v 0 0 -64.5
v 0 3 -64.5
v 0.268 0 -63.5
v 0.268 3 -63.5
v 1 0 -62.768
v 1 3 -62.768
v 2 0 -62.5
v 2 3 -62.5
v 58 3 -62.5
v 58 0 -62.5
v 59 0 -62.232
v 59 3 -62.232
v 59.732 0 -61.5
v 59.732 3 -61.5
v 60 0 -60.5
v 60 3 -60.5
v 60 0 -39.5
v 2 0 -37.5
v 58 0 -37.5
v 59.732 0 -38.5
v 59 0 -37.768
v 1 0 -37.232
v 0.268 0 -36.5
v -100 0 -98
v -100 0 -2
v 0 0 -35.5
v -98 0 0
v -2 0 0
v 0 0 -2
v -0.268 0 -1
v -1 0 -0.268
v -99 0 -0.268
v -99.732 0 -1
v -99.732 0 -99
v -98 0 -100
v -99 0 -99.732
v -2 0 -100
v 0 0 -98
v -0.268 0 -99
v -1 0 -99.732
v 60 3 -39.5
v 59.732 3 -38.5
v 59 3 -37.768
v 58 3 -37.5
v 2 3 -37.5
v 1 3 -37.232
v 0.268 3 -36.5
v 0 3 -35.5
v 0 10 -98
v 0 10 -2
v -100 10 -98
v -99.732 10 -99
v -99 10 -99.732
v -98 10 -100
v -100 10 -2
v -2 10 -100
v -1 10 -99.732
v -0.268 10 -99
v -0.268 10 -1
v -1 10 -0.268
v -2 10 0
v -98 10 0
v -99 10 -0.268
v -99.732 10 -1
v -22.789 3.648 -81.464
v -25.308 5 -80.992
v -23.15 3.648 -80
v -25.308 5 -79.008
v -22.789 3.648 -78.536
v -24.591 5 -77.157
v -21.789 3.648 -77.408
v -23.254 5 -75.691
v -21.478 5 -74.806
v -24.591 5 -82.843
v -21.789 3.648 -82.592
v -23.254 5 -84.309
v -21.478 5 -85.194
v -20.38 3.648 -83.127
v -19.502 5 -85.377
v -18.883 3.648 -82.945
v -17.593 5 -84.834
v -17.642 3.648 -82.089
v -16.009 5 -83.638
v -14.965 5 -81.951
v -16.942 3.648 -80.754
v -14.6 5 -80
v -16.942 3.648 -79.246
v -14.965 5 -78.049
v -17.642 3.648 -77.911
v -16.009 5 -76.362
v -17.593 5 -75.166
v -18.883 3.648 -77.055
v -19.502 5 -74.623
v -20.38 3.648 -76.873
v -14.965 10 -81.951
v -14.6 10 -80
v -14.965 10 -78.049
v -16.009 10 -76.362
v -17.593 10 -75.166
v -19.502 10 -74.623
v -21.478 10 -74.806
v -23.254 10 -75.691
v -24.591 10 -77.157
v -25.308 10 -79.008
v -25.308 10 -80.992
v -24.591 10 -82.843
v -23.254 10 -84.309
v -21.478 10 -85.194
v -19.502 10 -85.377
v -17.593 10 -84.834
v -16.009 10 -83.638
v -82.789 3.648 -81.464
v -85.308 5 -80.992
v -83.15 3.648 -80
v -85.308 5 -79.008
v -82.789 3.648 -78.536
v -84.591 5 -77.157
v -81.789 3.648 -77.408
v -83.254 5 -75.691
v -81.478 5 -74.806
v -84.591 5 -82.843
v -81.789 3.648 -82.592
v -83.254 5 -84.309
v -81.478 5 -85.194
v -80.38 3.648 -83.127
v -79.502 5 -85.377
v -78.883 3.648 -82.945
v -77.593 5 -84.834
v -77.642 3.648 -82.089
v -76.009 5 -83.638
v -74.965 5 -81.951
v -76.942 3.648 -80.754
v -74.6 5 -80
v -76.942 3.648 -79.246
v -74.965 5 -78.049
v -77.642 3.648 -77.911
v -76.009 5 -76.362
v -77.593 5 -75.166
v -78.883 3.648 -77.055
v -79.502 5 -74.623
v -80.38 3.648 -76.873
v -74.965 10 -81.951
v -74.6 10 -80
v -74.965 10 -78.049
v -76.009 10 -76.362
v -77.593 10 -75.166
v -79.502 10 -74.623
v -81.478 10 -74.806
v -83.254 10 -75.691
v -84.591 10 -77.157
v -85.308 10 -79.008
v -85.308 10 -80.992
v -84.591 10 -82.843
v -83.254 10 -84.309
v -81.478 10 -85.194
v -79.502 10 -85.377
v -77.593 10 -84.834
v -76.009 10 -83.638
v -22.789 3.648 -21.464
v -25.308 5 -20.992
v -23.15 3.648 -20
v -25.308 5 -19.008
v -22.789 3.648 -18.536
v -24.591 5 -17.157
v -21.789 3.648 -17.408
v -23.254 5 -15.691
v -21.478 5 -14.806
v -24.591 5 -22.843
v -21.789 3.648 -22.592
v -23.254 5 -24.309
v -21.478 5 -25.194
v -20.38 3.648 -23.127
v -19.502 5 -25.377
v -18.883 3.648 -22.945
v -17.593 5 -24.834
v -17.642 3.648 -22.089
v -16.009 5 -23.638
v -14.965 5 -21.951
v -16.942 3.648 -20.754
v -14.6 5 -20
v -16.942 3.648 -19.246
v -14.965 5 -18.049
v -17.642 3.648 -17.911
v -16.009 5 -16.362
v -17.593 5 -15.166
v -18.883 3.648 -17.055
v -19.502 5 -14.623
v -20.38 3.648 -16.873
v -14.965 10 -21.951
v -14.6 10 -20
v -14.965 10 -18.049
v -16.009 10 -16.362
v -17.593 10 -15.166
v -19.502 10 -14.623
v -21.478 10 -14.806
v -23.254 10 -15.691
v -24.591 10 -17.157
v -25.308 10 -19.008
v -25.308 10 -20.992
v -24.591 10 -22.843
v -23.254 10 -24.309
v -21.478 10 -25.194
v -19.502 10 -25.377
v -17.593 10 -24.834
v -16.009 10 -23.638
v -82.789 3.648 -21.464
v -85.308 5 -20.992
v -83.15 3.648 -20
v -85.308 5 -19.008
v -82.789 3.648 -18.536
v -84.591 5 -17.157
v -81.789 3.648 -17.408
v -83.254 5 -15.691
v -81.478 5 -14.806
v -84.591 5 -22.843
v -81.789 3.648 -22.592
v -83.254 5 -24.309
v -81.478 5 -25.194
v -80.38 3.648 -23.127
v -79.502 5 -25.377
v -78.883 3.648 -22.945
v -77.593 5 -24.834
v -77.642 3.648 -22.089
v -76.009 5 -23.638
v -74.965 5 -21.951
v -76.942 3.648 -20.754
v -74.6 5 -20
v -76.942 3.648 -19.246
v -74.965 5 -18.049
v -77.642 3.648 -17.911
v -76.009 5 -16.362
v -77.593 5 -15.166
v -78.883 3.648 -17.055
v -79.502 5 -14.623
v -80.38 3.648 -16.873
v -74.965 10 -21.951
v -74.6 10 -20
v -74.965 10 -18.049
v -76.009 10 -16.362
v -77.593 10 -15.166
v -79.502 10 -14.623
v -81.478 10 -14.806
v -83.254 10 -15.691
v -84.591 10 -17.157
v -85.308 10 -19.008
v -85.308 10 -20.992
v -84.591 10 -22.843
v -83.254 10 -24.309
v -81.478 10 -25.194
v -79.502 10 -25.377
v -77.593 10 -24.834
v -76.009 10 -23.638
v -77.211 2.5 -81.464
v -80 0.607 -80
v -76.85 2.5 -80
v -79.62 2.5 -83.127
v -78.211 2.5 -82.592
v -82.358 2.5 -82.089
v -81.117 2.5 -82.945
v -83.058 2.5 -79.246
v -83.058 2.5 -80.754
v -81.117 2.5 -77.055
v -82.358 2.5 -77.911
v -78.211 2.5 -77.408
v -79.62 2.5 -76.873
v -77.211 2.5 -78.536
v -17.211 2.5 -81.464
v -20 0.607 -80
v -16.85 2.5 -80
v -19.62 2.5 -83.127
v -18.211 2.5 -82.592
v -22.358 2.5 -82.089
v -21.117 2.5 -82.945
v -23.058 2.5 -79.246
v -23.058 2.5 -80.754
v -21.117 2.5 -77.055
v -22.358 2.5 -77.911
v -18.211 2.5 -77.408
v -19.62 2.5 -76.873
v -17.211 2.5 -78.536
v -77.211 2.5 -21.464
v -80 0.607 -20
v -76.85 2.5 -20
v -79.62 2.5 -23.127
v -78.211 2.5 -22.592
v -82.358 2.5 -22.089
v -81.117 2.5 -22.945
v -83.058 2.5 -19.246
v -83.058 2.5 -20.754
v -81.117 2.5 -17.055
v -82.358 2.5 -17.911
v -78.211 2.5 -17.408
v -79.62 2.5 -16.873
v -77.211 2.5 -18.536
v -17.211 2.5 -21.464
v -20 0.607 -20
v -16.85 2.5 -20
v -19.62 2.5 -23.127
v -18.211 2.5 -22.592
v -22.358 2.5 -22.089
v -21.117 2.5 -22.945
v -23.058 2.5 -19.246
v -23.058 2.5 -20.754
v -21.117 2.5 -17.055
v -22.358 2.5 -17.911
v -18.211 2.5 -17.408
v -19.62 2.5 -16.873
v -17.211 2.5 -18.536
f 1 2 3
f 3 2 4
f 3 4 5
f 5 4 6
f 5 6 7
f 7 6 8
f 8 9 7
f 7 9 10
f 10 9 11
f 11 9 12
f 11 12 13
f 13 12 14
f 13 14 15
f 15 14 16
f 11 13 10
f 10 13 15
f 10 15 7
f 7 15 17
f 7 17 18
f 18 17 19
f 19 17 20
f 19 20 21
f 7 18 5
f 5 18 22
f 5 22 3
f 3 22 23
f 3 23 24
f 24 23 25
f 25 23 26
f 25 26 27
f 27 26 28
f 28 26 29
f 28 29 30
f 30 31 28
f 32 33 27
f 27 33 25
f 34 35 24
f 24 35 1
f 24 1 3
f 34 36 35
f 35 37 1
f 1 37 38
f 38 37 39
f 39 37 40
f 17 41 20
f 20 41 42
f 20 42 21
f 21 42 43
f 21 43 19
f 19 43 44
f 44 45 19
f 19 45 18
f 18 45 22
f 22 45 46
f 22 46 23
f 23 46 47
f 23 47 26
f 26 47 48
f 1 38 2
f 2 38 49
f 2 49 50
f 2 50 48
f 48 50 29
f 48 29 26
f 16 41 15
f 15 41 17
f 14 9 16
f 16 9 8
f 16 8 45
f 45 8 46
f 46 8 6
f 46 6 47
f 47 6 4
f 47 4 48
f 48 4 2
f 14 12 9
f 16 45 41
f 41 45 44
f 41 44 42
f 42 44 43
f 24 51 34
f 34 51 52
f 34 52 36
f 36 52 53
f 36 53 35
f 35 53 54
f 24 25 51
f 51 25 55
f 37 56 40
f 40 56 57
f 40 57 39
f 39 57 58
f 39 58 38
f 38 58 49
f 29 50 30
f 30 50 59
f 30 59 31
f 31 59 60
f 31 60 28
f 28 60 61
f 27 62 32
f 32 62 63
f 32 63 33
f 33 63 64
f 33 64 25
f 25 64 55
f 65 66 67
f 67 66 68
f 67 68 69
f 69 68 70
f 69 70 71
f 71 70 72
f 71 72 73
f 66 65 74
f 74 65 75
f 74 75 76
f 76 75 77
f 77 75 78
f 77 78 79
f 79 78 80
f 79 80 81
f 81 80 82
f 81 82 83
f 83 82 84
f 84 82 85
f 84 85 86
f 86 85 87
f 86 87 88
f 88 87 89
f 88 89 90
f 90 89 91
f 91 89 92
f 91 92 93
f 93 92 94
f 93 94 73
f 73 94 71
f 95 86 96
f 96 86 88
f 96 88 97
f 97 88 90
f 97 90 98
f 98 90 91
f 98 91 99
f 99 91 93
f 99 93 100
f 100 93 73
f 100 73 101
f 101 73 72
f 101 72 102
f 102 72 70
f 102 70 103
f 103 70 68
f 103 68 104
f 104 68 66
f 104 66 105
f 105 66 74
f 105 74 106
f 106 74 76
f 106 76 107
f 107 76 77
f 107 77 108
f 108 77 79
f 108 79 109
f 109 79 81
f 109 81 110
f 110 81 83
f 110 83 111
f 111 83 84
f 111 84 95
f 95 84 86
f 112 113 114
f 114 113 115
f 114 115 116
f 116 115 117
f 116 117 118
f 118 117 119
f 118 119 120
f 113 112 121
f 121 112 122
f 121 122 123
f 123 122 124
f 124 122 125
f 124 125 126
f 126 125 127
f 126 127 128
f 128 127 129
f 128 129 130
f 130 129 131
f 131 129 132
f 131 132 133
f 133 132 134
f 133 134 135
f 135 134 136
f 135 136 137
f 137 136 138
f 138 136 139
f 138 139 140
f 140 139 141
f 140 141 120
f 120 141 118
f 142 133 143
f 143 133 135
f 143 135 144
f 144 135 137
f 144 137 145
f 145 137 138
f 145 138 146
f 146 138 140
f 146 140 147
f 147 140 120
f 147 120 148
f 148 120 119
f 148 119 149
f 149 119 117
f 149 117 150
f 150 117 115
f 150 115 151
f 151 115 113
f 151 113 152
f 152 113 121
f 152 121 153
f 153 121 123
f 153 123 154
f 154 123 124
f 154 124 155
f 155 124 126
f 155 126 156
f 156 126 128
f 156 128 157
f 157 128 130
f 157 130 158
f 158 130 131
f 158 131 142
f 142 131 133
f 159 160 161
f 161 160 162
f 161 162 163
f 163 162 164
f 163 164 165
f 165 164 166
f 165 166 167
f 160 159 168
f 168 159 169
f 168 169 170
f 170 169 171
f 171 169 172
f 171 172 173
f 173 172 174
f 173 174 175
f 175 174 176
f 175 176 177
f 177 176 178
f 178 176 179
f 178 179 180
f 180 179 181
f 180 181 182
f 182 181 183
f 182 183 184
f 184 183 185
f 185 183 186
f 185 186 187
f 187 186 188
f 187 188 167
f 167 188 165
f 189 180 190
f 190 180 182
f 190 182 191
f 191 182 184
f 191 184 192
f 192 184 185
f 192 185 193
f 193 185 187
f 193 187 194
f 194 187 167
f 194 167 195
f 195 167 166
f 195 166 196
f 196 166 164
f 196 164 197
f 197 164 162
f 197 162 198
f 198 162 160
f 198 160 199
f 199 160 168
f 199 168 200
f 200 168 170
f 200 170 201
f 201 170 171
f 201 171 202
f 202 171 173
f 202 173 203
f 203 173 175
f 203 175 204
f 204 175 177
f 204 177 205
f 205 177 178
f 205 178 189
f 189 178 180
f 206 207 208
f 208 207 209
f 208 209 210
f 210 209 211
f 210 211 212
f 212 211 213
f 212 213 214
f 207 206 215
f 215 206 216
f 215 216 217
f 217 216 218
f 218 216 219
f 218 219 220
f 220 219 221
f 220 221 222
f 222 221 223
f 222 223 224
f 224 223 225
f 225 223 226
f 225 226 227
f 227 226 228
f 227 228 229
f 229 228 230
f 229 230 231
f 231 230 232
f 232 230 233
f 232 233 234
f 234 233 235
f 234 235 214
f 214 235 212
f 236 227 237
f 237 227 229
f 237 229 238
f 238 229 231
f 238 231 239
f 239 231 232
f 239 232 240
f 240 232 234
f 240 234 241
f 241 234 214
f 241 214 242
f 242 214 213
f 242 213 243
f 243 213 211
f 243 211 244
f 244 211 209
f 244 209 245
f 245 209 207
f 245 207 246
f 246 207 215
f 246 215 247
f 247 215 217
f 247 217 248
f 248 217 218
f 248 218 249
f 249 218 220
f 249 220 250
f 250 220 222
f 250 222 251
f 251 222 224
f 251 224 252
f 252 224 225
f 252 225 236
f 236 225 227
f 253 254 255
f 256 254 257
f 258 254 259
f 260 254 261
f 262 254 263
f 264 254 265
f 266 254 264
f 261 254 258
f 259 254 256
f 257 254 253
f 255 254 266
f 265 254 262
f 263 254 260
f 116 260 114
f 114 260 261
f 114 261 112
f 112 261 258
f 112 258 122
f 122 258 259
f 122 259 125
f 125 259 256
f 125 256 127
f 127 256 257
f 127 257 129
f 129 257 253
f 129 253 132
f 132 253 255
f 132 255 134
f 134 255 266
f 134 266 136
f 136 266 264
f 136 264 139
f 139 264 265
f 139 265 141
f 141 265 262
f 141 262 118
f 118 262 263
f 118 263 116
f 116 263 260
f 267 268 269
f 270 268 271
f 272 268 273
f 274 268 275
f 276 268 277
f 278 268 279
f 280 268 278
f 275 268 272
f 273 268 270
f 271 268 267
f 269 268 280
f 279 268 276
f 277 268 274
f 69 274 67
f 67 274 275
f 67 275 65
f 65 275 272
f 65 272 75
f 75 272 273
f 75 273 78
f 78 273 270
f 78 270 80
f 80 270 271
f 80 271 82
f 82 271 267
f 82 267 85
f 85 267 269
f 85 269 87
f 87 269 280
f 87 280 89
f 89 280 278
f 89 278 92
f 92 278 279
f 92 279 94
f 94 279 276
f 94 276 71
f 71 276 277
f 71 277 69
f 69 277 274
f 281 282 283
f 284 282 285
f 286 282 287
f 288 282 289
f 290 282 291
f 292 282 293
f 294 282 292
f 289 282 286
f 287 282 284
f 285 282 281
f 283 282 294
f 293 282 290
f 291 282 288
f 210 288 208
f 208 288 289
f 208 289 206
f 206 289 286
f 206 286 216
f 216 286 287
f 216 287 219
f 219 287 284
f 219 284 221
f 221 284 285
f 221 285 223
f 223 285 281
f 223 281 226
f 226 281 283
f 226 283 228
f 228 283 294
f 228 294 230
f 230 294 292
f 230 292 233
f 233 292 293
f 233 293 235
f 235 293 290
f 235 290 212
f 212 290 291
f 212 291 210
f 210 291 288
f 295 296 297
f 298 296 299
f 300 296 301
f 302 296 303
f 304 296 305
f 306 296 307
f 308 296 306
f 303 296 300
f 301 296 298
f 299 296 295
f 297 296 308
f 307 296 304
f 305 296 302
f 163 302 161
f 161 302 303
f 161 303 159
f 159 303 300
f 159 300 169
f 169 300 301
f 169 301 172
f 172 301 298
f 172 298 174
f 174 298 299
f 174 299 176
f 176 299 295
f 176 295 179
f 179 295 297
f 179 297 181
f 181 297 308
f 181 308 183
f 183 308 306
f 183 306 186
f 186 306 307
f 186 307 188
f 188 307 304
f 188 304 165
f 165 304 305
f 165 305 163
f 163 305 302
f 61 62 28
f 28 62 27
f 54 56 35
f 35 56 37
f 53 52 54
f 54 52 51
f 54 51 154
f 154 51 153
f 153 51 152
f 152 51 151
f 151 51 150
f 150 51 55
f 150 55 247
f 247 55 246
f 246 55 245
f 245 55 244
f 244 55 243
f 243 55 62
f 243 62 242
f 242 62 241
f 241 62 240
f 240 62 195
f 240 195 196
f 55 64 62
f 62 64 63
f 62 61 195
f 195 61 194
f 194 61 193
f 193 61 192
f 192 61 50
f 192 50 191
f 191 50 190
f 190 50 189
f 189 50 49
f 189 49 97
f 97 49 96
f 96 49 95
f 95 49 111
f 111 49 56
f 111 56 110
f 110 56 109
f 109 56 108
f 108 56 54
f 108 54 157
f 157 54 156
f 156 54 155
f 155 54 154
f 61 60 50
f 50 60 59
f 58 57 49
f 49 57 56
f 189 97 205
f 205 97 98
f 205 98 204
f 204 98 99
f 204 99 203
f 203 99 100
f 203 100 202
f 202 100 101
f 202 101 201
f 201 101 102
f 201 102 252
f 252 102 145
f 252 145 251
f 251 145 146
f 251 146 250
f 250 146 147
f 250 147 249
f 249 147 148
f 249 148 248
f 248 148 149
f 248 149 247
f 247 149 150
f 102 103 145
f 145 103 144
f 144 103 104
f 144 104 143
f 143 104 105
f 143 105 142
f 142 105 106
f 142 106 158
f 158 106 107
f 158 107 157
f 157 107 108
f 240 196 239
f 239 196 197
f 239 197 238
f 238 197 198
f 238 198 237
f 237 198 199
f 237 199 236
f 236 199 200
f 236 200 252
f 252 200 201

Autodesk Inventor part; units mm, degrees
ref_plane "YZ Plane" through (0, 0, 0) normal (1, 0, 0) x (0, 1, 0)
ref_plane "XZ Plane" through (0, 0, 0) normal (0, 1, 0) x (-1, 0, 0)
ref_plane "XY Plane" through (0, 0, 0) normal (0, 0, 1) x (1, 0, 0)
sketch "Sketch1" plane through (0, 0, 0) normal (0, 1, 0) x (-1, 0, 0)
  line L0 (100, 0) -> (0, 0)
  line L1 (0, 0) -> (0, -100)
  line L2 (0, -100) -> (100, -100)
  line L3 (100, -100) -> (100, 0)
  dimension "d0" = 100
extrude "Extrusion1" add sketch "Sketch1" along normal blind 10
sketch "Sketch2" plane through (0, 10, 0) normal (0, 1, 0) x (1, 0, 0)
  line L0 (-20, 20) -> (-80, 20) construction
  line L1 (-80, 20) -> (-80, 80) construction
  line L2 (-80, 80) -> (-20, 80) construction
  line L3 (-20, 80) -> (-20, 20) construction
  line L4 (-100, 0) -> (0, 0) construction
  line L5 (0, 0) -> (0, 100) construction
  dimension "d3" = 60
  dimension "d4" = 20
  dimension "d5" = 20
hole "Hole1" at (-20, 10, -20) at (-80, 10, -20) at (-20, 10, -80) at (-80, 10, -80) direction (0, -1, 0) diameter 6.3 depth 7.5 tip angle 118
sketch "Sketch3" plane through (0, 10, 0) normal (0, 1, 0) x (1, 0, 0)
  circle A0 centre (-80, 20) radius 3.15 projected
  circle A1 centre (-20, 20) radius 3.15 projected
  circle A2 centre (-80, 80) radius 3.15 projected
  circle A3 centre (-20, 80) radius 3.15 projected
  point P0 (0, 0)
hole "Hole2" at (-80, 10, -20) at (-20, 10, -20) at (-80, 10, -80) at (-20, 10, -80) direction (0, -1, 0) diameter 10.8 depth 5 tip angle 118
fillet "Fillet1" radius 2 4 edges at (-100, 5, 0) (0, 5, 0) (0, 5, -100) (-100, 5, -100)
sketch "Sketch4" plane through (0, 0, 0) normal (0, -1, 0) x (1, 0, 0)
  line L0 (60, -37.5) -> (0, -37.5)
  line L1 (0, -37.5) -> (0, -62.5)
  line L2 (0, -62.5) -> (60, -62.5)
  line L3 (60, -62.5) -> (60, -37.5)
  line L4 (0, -2) -> (0, -98) projected
  line L5 (60, -50) -> (0, -50) construction
  line L6 (-98, 0) -> (-2, 0) construction
  point P0 (0, 0)
  dimension "d21" = 25
  dimension "d22" = 60
  dimension "d23" = 50
extrude "Extrusion2" add sketch "Sketch4" against normal blind 3
fillet "Fillet2" radius 2 4 edges at (0, 1.5, -37.5) (60, 1.5, -37.5) (60, 1.5, -62.5) (0, 1.5, -62.5)
equation "\"d0\" = base_width"
equation "\"d1\" = base_thickness"
equation "\"d3\" = rod_dist"
equation "\"d4\" = 0.5 * base_width - 0.5 * rod_dist"
equation "\"d5\" = 0.5 * base_width - 0.5 * rod_dist"
equation "\"d6\" = rod_tolerance + rod_diameter"
equation "\"d11\" = 0.75 * base_thickness"
equation "\"d13\" = rod_tolerance + post_diameter"
equation "\"d18\" = 0.5 * base_thickness"
equation "\"d21\" = flange_width"
equation "\"d22\" = flange_length"
equation "\"d23\" = 0.5 * base_width"
equation "\"base_width\" = 100"
equation "\"base_thickness\" = 10"
equation "\"rod_diameter\" = 6"
equation "\"rod_tolerance\" = 0.3"
equation "\"flange_length\" = 60"
equation "\"flange_width\" = 25"
equation "\"post_diameter\" = 10.5"
equation "\"rod_dist\" = 60"
properties part number "cradle_base"
